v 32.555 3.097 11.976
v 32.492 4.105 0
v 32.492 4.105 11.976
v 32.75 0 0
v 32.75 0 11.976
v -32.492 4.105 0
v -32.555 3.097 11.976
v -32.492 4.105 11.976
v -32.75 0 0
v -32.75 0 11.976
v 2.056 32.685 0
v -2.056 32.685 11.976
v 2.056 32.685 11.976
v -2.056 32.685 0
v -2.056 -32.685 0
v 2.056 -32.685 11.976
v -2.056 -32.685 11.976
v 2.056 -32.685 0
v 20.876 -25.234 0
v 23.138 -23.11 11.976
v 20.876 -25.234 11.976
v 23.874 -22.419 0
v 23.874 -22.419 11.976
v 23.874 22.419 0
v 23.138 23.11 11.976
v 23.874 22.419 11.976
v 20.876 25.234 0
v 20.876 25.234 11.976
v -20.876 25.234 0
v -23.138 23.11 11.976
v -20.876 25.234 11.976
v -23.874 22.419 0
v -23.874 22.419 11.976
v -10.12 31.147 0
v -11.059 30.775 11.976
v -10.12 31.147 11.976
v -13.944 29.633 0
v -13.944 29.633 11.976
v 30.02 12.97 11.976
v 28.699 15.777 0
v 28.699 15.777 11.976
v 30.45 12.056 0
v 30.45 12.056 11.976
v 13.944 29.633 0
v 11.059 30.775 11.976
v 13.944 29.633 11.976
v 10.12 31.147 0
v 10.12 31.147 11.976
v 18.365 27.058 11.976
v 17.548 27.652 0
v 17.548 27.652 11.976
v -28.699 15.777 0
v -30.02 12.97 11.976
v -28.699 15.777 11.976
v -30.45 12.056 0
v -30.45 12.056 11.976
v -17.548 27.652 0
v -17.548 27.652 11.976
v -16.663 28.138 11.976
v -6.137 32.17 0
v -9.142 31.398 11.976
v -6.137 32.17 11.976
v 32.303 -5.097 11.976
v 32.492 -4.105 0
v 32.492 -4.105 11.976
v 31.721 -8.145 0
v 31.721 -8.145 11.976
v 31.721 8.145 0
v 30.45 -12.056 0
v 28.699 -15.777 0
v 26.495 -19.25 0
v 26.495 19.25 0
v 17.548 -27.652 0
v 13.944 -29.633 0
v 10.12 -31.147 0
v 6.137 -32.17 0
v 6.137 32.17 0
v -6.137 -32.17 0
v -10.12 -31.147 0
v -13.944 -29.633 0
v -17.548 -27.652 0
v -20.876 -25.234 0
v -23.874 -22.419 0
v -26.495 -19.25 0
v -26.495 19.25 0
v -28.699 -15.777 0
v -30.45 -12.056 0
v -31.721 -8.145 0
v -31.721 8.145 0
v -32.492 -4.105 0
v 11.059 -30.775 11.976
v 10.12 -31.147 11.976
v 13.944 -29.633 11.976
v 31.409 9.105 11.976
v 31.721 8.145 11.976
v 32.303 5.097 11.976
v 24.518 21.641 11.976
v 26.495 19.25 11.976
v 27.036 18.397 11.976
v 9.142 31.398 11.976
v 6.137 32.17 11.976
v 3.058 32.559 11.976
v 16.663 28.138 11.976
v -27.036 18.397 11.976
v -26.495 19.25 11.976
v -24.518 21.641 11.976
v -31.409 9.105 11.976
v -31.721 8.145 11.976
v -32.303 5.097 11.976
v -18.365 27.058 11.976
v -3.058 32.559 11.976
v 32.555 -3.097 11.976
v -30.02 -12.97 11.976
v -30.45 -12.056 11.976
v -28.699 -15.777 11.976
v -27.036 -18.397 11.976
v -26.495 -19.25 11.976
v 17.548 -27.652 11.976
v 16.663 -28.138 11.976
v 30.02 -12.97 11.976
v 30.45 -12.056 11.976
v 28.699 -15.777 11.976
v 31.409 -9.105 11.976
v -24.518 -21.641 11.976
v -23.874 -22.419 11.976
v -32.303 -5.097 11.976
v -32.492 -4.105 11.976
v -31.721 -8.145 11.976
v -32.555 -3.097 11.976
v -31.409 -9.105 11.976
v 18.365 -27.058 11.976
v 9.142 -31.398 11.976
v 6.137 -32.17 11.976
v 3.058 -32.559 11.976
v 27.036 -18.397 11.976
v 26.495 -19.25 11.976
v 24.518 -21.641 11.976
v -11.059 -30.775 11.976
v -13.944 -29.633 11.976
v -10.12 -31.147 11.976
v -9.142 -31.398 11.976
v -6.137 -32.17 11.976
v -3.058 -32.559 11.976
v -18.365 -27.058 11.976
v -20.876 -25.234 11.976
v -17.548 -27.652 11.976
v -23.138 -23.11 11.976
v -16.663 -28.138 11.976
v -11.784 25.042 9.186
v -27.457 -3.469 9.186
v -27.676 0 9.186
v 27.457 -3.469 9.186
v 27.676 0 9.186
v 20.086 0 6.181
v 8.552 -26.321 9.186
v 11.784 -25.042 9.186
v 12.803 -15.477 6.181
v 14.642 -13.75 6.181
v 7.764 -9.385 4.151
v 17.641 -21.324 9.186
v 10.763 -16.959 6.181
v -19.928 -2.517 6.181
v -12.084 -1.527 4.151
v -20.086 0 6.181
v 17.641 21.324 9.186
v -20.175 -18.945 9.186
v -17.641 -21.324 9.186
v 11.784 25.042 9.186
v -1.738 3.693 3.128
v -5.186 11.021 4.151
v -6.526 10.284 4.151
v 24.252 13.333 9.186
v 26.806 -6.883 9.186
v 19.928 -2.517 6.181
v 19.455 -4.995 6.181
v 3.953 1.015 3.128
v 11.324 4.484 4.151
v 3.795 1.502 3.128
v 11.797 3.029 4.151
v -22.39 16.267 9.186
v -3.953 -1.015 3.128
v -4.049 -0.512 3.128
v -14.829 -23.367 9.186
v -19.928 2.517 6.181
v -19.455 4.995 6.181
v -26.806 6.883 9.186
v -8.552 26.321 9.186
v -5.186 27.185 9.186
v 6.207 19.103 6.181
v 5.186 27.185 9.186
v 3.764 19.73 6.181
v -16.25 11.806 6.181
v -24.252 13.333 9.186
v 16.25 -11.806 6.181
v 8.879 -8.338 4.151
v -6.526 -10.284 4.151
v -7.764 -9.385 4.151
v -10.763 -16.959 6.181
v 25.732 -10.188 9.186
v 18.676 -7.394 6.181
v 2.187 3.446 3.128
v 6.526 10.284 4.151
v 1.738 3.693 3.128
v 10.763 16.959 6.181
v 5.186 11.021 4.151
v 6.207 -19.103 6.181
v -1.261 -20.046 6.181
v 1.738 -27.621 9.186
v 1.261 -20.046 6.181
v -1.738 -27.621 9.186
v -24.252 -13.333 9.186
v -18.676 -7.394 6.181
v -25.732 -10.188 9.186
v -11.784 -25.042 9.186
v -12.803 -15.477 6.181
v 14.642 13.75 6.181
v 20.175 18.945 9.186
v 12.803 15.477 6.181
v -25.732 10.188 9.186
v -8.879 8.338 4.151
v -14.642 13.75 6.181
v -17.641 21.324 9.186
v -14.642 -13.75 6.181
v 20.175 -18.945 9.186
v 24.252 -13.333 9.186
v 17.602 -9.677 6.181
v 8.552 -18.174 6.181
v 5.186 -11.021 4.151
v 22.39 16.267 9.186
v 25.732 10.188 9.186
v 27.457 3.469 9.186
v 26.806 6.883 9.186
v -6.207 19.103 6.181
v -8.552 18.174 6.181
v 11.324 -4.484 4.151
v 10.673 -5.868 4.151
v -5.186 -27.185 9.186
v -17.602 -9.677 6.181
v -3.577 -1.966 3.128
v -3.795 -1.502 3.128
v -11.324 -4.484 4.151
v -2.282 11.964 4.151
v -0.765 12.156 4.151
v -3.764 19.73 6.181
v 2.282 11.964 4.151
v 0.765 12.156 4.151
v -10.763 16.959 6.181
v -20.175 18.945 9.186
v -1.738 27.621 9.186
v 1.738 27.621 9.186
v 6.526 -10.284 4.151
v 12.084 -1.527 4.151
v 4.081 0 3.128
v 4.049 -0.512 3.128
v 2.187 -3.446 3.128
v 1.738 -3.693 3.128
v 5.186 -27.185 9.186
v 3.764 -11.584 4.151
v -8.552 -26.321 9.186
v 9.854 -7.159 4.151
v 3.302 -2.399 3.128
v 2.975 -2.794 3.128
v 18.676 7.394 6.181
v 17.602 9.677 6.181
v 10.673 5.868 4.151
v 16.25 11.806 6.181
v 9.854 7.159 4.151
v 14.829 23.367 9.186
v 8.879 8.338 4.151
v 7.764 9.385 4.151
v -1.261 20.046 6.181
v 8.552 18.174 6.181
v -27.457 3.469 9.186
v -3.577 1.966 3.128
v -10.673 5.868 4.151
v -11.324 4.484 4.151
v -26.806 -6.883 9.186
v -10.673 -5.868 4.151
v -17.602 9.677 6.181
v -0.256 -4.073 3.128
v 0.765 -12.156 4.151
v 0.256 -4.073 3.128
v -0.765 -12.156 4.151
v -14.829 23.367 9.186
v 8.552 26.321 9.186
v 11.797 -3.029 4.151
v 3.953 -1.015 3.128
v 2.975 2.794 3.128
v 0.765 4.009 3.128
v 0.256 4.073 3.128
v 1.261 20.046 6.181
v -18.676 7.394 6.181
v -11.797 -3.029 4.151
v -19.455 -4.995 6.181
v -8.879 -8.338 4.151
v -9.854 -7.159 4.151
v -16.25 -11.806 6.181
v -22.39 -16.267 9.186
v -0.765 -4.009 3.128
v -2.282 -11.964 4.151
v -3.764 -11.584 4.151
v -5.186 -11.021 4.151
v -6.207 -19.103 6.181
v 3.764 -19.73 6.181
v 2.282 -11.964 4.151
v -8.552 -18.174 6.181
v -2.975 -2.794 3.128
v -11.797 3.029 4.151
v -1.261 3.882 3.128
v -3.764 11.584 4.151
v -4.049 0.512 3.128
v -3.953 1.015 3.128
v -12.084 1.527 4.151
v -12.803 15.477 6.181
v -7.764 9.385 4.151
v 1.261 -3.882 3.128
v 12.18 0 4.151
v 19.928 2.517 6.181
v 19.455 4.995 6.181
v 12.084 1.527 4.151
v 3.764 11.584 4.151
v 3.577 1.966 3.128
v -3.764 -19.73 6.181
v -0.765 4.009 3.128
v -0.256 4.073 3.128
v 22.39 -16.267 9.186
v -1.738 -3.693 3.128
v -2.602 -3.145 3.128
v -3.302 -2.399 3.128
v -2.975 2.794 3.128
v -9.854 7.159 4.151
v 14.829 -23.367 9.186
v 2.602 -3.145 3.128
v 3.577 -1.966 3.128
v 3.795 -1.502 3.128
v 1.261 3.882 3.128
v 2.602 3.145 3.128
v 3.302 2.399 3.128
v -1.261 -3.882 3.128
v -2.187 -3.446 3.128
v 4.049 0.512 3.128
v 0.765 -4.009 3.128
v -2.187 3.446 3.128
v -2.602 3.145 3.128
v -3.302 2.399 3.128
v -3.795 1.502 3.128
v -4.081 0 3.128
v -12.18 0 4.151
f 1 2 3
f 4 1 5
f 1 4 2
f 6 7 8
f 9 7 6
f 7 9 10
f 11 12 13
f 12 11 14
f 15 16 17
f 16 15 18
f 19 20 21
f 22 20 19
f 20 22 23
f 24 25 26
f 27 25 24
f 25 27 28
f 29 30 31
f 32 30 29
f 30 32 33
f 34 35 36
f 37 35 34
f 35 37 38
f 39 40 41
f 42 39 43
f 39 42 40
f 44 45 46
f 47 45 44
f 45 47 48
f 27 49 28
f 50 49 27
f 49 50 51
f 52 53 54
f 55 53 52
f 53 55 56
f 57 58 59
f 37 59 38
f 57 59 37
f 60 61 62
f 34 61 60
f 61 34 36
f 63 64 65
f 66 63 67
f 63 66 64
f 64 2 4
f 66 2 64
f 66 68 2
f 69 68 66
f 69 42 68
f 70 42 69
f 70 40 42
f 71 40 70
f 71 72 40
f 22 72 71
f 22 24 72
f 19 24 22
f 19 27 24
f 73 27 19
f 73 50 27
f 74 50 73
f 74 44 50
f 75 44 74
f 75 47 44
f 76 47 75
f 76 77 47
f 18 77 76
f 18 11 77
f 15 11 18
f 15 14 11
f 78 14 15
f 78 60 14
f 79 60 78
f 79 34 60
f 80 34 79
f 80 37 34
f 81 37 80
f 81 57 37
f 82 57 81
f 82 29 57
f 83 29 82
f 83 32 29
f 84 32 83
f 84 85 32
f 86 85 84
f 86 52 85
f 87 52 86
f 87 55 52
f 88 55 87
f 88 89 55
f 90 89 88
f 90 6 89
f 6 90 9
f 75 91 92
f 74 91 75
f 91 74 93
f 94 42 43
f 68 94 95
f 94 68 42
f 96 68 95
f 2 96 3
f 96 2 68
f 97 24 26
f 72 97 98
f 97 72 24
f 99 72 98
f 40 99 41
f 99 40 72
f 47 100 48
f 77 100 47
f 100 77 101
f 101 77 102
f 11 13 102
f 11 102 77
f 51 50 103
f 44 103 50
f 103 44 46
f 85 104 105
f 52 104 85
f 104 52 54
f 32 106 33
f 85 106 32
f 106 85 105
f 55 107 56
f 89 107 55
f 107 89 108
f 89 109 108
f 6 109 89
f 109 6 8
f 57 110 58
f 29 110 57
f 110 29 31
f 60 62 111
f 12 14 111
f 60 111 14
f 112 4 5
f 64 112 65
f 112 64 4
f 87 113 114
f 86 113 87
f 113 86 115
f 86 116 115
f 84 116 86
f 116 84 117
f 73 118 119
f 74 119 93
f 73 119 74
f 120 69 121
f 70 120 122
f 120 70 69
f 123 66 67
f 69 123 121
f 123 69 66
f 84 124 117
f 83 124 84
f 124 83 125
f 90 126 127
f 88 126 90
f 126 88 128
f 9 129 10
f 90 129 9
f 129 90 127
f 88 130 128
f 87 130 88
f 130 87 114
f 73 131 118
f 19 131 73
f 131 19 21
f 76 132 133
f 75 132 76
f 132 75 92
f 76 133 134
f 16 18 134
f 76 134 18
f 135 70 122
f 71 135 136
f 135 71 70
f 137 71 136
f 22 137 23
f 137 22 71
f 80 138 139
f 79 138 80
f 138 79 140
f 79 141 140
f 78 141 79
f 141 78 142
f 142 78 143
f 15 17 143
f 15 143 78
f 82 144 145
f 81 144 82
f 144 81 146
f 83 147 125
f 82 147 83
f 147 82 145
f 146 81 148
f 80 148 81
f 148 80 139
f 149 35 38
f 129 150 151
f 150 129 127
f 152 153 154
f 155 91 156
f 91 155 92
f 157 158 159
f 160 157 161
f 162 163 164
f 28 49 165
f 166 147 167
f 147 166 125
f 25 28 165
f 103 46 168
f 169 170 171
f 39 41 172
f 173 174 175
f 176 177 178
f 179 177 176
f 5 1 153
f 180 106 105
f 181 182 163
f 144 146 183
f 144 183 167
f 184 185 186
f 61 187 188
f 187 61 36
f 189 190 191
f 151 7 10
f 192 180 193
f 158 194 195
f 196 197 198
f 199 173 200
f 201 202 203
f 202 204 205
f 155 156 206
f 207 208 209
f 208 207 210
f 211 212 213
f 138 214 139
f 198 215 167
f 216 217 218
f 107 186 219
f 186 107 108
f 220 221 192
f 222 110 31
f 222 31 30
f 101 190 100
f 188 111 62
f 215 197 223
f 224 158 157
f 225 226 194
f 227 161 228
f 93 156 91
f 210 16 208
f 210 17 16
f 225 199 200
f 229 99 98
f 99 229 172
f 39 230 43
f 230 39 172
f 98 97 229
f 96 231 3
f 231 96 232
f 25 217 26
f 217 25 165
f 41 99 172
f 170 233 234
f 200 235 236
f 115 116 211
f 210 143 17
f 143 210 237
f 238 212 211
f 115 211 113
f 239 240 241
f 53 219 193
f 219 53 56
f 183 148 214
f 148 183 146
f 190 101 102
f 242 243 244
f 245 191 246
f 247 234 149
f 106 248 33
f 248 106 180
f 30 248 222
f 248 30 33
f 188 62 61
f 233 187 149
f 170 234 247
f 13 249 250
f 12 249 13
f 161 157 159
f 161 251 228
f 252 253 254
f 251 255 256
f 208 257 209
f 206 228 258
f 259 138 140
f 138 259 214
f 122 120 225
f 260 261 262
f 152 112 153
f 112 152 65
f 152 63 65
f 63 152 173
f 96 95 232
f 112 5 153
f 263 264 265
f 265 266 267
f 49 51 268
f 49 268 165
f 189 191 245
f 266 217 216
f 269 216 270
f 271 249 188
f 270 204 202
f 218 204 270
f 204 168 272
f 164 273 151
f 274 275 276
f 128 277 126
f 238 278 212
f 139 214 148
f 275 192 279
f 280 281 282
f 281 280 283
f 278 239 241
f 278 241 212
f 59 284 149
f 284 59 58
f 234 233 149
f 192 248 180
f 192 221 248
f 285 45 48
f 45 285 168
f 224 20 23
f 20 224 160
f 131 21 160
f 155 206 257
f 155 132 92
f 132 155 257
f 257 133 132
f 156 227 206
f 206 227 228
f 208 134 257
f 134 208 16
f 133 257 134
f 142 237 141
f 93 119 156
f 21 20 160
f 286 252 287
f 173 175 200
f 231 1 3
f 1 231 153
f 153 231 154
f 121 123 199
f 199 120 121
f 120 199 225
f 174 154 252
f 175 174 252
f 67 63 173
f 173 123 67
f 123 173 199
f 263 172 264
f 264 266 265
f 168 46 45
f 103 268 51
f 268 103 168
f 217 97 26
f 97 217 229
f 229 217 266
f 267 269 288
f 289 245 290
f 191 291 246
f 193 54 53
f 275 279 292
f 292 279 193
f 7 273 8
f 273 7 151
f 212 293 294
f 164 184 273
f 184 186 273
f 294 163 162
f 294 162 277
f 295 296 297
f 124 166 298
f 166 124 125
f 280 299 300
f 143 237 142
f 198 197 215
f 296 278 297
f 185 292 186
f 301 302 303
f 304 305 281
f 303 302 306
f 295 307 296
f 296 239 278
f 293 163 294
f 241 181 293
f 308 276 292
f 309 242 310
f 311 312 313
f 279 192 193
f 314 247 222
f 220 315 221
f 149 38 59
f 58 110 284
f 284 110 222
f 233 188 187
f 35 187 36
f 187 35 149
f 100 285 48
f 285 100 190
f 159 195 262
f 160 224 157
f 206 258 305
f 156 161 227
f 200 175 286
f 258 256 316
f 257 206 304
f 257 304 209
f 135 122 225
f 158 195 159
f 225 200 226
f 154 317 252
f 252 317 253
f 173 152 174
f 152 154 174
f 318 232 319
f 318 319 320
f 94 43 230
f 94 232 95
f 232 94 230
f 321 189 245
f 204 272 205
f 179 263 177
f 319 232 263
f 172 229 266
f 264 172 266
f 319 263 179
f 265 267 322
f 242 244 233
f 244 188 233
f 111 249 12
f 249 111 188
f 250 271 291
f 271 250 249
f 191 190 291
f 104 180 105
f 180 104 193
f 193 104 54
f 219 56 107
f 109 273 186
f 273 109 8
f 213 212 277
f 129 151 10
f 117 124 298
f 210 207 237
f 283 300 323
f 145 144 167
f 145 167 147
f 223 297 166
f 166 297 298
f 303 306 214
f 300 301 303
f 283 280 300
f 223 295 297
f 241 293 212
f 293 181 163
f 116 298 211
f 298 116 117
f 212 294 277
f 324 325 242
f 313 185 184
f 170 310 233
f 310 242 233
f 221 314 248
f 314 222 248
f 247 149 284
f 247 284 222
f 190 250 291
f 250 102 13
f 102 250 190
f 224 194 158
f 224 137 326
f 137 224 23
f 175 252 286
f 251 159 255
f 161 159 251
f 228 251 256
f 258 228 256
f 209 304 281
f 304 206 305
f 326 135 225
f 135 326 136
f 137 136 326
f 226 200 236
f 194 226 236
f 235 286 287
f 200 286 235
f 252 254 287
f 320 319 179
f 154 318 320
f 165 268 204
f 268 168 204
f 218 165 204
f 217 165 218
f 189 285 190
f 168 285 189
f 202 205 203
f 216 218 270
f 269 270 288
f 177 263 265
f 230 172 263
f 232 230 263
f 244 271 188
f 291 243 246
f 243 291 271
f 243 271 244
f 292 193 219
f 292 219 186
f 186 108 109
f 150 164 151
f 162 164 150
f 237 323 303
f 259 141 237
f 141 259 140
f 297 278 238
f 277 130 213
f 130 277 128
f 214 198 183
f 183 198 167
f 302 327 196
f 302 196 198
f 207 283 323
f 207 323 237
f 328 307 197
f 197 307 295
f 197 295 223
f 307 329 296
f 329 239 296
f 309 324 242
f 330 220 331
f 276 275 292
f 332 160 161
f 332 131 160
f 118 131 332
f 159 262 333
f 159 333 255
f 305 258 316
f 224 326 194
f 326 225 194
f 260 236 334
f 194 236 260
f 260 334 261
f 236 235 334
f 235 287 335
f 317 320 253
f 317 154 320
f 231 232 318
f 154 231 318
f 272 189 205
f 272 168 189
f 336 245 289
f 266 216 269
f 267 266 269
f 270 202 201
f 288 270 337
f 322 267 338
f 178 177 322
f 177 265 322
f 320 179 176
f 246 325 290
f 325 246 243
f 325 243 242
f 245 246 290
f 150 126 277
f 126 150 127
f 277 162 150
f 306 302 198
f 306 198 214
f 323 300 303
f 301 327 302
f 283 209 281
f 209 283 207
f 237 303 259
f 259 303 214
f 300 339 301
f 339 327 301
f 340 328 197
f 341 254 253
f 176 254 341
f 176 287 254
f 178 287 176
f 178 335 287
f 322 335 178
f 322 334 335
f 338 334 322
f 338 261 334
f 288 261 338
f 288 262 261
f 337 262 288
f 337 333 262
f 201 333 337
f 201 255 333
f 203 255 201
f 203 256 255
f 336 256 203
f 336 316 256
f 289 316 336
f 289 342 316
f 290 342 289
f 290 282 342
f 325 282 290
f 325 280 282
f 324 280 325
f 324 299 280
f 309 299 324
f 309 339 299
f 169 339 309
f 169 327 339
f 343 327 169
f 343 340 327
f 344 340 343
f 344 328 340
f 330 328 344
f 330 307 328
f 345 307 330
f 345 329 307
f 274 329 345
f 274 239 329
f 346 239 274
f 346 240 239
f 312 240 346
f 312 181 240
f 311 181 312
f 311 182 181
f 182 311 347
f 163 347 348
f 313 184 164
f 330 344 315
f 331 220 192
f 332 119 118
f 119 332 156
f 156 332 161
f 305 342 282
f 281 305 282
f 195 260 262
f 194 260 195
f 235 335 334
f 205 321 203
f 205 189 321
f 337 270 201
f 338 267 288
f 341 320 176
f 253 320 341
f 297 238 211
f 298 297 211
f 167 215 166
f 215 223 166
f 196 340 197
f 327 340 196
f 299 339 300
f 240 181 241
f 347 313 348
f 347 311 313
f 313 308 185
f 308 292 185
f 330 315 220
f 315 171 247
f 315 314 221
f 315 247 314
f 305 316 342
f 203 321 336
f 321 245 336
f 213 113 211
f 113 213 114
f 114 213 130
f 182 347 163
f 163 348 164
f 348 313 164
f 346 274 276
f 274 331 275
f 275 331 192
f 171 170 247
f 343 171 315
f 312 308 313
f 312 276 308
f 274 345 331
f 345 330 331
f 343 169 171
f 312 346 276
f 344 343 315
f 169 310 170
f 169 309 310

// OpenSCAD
$fn=50;
difference() {
	cylinder(12,65.5/2,65.5/2);
	translate([0,0,68]) sphere(65);
}
